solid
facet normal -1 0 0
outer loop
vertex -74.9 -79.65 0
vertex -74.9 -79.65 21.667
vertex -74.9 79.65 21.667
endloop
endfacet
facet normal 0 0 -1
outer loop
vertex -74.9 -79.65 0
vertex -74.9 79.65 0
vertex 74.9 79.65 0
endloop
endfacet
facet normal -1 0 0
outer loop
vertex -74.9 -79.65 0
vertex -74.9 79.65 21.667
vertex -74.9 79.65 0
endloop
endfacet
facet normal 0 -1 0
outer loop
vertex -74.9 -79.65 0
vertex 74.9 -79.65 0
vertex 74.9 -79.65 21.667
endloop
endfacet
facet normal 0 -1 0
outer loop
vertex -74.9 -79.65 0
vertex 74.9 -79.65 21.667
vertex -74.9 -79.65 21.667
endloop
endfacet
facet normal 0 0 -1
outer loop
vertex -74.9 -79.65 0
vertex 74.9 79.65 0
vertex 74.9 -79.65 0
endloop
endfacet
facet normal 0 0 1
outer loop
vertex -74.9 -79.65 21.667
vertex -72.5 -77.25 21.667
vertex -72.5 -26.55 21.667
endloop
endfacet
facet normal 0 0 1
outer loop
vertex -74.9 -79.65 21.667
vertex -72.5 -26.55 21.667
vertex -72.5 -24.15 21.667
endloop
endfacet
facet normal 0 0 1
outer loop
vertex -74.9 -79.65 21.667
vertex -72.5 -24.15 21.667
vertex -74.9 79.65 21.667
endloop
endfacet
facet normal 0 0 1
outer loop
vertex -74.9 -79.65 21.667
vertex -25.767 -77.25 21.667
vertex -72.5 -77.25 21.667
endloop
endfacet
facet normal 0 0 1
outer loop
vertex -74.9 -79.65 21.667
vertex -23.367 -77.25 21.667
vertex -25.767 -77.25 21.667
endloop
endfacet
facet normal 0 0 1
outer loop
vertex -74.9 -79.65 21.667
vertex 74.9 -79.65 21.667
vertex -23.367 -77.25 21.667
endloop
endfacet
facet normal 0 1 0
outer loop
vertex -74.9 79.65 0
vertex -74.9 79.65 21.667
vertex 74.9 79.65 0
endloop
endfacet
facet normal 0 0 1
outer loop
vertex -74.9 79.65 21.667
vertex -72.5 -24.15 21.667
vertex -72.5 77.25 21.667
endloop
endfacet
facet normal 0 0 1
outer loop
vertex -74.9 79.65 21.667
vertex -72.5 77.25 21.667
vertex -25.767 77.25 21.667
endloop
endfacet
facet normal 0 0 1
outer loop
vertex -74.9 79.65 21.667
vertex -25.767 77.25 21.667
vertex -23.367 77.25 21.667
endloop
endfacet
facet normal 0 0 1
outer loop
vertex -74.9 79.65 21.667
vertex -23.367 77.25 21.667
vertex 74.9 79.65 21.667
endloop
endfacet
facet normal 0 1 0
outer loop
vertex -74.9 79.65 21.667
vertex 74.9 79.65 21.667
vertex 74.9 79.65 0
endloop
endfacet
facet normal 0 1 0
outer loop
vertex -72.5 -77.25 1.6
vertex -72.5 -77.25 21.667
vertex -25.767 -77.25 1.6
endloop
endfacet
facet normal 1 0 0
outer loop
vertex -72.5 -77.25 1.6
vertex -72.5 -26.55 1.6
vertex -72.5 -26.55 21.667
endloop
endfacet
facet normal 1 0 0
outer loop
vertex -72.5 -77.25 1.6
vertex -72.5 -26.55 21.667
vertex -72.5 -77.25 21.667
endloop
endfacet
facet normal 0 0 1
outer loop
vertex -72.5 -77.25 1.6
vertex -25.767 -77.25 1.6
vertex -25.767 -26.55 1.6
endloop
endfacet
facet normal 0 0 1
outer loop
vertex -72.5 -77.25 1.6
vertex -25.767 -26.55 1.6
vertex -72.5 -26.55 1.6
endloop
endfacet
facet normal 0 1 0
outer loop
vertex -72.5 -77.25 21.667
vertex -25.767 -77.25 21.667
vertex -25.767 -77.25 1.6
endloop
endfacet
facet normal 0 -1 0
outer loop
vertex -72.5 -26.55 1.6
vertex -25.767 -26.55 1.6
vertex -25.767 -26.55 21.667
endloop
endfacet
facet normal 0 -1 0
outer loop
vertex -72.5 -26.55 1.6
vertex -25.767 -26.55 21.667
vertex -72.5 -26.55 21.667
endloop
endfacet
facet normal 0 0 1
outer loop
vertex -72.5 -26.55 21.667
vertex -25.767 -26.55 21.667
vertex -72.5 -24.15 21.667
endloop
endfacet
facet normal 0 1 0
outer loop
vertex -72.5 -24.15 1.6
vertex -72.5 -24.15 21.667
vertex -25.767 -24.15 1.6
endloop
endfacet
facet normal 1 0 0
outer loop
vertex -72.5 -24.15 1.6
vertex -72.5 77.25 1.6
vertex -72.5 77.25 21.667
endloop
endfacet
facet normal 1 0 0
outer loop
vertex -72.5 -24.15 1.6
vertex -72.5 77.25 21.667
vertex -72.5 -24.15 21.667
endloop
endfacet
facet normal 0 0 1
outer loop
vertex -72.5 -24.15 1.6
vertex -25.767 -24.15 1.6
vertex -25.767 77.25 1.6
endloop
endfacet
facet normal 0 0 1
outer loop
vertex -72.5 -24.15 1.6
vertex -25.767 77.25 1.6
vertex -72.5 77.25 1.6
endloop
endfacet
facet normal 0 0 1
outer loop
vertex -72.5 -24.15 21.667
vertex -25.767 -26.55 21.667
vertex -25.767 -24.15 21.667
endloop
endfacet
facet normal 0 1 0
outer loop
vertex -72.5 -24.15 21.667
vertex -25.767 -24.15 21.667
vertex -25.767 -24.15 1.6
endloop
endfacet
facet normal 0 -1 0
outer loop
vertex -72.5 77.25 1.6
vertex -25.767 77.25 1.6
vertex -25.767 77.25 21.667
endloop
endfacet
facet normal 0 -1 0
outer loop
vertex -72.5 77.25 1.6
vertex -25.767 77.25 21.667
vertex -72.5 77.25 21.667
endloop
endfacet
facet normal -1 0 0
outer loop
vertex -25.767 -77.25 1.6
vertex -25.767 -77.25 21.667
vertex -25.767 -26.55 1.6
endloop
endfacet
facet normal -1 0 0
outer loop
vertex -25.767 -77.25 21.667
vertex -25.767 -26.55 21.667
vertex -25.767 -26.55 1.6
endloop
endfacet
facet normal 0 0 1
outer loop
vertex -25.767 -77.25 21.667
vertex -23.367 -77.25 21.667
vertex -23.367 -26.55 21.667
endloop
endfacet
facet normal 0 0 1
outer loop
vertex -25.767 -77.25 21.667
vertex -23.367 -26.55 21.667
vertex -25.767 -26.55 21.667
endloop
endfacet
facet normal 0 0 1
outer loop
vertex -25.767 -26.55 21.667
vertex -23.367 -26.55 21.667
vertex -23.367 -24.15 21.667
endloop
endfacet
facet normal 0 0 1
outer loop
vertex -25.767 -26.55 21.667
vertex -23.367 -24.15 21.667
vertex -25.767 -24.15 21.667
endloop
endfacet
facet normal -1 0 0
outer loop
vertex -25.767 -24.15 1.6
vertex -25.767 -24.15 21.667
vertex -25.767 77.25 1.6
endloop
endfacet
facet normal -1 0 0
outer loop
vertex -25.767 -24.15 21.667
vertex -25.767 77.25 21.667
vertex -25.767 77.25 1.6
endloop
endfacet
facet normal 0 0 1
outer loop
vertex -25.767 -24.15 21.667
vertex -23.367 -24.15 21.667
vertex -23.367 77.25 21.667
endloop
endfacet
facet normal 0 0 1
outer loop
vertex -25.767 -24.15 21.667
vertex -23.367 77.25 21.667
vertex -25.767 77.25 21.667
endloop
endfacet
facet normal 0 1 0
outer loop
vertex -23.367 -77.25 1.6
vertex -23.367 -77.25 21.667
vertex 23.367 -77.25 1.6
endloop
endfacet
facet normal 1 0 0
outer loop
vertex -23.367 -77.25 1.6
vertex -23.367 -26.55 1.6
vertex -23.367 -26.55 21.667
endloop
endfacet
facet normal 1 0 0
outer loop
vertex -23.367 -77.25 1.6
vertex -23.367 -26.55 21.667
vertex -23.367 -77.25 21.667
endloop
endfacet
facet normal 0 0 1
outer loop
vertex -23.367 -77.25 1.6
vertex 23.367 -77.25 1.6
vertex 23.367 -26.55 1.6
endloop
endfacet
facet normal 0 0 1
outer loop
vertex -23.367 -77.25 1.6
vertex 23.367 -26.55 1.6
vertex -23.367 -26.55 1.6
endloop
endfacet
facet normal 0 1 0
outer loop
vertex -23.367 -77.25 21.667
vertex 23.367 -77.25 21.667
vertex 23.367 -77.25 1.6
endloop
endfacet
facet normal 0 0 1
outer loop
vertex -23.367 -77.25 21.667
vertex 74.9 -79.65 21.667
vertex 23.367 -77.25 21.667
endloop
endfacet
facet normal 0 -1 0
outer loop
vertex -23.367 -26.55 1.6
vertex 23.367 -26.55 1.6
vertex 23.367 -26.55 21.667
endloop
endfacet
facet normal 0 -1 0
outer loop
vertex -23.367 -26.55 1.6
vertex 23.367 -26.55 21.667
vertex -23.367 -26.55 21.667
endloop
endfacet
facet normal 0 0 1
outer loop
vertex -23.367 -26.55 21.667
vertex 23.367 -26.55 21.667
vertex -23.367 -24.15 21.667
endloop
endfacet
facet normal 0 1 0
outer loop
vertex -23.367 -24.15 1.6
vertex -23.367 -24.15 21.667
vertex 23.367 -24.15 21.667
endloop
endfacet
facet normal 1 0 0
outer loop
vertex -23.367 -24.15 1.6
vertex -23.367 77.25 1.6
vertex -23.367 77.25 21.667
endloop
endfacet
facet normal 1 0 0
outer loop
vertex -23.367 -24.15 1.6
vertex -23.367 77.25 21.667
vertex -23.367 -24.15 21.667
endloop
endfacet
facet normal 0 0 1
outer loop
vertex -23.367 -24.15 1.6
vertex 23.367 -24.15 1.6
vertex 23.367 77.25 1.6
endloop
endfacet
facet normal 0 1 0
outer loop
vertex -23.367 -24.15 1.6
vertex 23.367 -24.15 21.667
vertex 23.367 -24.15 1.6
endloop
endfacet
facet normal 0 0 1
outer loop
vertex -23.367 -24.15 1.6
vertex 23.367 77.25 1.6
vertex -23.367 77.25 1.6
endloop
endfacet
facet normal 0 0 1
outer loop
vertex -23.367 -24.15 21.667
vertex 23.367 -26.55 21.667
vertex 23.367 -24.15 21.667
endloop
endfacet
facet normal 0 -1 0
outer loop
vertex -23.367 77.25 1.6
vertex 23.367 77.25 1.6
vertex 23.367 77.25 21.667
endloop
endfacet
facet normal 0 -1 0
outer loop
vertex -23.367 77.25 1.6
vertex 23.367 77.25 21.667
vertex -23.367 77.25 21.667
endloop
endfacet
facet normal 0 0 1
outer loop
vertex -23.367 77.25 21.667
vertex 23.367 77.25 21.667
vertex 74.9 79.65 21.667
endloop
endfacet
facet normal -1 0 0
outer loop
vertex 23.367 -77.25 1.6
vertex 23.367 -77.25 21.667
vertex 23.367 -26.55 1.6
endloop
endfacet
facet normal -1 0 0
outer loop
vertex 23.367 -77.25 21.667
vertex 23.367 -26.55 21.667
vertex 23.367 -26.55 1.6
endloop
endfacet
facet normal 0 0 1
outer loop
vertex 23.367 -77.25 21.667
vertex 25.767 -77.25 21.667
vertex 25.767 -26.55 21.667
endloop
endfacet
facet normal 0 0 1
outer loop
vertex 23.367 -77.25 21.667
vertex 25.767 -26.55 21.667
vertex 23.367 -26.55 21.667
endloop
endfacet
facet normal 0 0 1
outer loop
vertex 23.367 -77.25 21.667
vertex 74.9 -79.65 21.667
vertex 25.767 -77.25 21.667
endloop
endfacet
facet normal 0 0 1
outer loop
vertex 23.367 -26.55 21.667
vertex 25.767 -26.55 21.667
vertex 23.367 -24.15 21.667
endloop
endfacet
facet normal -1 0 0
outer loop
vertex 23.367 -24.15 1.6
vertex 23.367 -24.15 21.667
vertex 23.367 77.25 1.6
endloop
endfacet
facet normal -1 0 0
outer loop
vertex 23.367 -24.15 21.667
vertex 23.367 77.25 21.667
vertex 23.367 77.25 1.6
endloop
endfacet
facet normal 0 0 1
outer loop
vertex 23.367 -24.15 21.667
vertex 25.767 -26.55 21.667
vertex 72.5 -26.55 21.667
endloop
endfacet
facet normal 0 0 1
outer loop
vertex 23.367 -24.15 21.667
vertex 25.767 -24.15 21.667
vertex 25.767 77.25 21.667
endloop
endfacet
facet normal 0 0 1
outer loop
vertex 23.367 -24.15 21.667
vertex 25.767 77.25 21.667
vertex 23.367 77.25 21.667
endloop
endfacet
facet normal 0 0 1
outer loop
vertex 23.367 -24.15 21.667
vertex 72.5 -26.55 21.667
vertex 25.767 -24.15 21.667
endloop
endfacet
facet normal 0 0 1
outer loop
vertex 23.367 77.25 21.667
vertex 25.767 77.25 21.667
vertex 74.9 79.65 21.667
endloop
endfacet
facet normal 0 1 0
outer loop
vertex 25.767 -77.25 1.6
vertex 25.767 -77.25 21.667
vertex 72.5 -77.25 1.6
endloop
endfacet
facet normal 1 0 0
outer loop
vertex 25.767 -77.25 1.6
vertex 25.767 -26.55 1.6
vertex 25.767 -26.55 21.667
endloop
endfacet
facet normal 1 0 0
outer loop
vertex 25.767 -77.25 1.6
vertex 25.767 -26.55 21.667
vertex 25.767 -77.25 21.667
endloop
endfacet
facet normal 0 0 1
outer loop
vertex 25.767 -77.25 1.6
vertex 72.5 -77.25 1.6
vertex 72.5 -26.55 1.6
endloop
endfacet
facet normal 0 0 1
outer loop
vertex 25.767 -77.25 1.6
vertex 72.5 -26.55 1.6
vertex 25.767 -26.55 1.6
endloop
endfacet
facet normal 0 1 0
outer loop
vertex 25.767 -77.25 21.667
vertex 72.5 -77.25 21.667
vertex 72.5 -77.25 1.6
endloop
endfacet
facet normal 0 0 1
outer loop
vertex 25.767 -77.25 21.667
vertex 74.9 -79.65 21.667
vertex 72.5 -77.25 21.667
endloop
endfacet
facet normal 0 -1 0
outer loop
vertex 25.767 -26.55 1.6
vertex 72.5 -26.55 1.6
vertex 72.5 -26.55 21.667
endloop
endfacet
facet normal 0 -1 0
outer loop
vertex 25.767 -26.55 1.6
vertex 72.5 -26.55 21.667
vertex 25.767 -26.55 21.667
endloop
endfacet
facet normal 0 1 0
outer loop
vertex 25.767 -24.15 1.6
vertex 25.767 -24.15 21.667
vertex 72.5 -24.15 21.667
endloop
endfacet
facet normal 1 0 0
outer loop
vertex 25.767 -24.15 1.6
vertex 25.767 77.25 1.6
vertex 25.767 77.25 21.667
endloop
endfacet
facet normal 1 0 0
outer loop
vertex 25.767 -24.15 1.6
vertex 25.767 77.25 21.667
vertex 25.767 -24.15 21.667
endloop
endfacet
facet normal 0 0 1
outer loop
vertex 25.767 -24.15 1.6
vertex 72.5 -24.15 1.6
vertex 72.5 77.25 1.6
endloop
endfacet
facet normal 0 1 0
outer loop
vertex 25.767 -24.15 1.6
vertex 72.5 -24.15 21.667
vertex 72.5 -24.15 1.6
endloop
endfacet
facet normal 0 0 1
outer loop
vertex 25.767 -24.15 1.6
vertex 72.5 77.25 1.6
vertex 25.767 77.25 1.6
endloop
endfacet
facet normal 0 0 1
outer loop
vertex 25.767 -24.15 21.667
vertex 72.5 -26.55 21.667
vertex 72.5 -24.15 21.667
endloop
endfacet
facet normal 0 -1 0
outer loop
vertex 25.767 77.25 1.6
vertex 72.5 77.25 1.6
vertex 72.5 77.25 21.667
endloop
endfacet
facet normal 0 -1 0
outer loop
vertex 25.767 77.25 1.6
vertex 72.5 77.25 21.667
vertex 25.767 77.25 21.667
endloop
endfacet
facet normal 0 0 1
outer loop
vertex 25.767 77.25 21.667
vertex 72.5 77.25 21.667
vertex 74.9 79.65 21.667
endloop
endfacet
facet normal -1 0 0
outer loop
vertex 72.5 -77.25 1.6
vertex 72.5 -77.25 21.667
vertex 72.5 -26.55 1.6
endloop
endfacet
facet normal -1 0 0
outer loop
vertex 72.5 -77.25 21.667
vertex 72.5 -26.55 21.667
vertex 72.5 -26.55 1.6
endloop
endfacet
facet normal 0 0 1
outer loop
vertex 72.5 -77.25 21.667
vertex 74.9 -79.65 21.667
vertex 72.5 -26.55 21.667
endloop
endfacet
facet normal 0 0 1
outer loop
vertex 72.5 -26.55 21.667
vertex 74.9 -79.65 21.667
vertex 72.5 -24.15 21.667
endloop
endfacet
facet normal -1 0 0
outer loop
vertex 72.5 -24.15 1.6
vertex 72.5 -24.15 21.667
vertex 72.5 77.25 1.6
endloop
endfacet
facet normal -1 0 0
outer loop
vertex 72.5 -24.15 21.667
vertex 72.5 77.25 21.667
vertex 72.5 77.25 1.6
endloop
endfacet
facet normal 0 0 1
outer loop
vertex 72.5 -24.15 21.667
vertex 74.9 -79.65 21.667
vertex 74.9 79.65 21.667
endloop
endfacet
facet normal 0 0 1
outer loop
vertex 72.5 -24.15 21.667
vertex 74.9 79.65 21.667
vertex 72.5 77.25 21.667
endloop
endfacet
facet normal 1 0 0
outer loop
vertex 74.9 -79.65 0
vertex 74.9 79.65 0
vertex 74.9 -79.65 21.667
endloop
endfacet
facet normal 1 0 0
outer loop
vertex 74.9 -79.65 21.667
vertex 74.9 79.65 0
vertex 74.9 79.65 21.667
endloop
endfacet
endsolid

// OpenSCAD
// Start: lazy_union
default_5_default_5();
// End: lazy_union

// Modules.

// 'PartMaterial undef-default - default 5.0'
module default_5_default_5() {
  // 'None : _combine_solids_and_holes'
  union() {
    // '_combine_solids_and_holes'
    difference() {
      // 'default : _combine_solids_and_holes'
      union() {
        // 'box'
        multmatrix(m=[[1.0, 0.0, 0.0, -74.9], [0.0, 1.0, 0.0, -79.65], [0.0, 0.0, 1.0, 0.0], [0.0, 0.0, 0.0, 1.0]]) {
          // 'box : _combine_solids_and_holes'
          union() {
            // 'box'
            cube(size=[149.8, 159.3, 21.666666666666668]);
          }
        }
      }
      // 'default'
      multmatrix(m=[[1.0, 0.0, 0.0, -72.5], [0.0, 1.0, 0.0, -24.15000000000002], [0.0, 0.0, 1.0, 1.6], [0.0, 0.0, 0.0, 1.0]]) {
        // "('hole', 0, 0) : _combine_solids_and_holes"
        union() {
          // ('hole', 0, 0)
          cube(size=[46.73333333333334, 101.40000000000002, 20.076666666666668]);
        }
      }
      // 'default'
      multmatrix(m=[[1.0, 0.0, 0.0, -72.5], [0.0, 1.0, 0.0, -77.25000000000003], [0.0, 0.0, 1.0, 1.6], [0.0, 0.0, 0.0, 1.0]]) {
        // "('hole', 0, 1) : _combine_solids_and_holes"
        union() {
          // ('hole', 0, 1)
          cube(size=[46.73333333333334, 50.70000000000001, 20.076666666666668]);
        }
      }
      // 'default'
      multmatrix(m=[[1.0, 0.0, 0.0, -23.366666666666667], [0.0, 1.0, 0.0, -24.15000000000002], [0.0, 0.0, 1.0, 1.6], [0.0, 0.0, 0.0, 1.0]]) {
        // "('hole', 1, 0) : _combine_solids_and_holes"
        union() {
          // ('hole', 1, 0)
          cube(size=[46.73333333333334, 101.40000000000002, 20.076666666666668]);
        }
      }
      // 'default'
      multmatrix(m=[[1.0, 0.0, 0.0, -23.366666666666667], [0.0, 1.0, 0.0, -77.25000000000003], [0.0, 0.0, 1.0, 1.6], [0.0, 0.0, 0.0, 1.0]]) {
        // "('hole', 1, 1) : _combine_solids_and_holes"
        union() {
          // ('hole', 1, 1)
          cube(size=[46.73333333333334, 50.70000000000001, 20.076666666666668]);
        }
      }
      // 'default'
      multmatrix(m=[[1.0, 0.0, 0.0, 25.76666666666668], [0.0, 1.0, 0.0, -24.15000000000002], [0.0, 0.0, 1.0, 1.6], [0.0, 0.0, 0.0, 1.0]]) {
        // "('hole', 2, 0) : _combine_solids_and_holes"
        union() {
          // ('hole', 2, 0)
          cube(size=[46.73333333333334, 101.40000000000002, 20.076666666666668]);
        }
      }
      // 'default'
      multmatrix(m=[[1.0, 0.0, 0.0, 25.76666666666668], [0.0, 1.0, 0.0, -77.25000000000003], [0.0, 0.0, 1.0, 1.6], [0.0, 0.0, 0.0, 1.0]]) {
        // "('hole', 2, 1) : _combine_solids_and_holes"
        union() {
          // ('hole', 2, 1)
          cube(size=[46.73333333333334, 50.70000000000001, 20.076666666666668]);
        }
      }
    }
  }
} // end module default_5_default_5
